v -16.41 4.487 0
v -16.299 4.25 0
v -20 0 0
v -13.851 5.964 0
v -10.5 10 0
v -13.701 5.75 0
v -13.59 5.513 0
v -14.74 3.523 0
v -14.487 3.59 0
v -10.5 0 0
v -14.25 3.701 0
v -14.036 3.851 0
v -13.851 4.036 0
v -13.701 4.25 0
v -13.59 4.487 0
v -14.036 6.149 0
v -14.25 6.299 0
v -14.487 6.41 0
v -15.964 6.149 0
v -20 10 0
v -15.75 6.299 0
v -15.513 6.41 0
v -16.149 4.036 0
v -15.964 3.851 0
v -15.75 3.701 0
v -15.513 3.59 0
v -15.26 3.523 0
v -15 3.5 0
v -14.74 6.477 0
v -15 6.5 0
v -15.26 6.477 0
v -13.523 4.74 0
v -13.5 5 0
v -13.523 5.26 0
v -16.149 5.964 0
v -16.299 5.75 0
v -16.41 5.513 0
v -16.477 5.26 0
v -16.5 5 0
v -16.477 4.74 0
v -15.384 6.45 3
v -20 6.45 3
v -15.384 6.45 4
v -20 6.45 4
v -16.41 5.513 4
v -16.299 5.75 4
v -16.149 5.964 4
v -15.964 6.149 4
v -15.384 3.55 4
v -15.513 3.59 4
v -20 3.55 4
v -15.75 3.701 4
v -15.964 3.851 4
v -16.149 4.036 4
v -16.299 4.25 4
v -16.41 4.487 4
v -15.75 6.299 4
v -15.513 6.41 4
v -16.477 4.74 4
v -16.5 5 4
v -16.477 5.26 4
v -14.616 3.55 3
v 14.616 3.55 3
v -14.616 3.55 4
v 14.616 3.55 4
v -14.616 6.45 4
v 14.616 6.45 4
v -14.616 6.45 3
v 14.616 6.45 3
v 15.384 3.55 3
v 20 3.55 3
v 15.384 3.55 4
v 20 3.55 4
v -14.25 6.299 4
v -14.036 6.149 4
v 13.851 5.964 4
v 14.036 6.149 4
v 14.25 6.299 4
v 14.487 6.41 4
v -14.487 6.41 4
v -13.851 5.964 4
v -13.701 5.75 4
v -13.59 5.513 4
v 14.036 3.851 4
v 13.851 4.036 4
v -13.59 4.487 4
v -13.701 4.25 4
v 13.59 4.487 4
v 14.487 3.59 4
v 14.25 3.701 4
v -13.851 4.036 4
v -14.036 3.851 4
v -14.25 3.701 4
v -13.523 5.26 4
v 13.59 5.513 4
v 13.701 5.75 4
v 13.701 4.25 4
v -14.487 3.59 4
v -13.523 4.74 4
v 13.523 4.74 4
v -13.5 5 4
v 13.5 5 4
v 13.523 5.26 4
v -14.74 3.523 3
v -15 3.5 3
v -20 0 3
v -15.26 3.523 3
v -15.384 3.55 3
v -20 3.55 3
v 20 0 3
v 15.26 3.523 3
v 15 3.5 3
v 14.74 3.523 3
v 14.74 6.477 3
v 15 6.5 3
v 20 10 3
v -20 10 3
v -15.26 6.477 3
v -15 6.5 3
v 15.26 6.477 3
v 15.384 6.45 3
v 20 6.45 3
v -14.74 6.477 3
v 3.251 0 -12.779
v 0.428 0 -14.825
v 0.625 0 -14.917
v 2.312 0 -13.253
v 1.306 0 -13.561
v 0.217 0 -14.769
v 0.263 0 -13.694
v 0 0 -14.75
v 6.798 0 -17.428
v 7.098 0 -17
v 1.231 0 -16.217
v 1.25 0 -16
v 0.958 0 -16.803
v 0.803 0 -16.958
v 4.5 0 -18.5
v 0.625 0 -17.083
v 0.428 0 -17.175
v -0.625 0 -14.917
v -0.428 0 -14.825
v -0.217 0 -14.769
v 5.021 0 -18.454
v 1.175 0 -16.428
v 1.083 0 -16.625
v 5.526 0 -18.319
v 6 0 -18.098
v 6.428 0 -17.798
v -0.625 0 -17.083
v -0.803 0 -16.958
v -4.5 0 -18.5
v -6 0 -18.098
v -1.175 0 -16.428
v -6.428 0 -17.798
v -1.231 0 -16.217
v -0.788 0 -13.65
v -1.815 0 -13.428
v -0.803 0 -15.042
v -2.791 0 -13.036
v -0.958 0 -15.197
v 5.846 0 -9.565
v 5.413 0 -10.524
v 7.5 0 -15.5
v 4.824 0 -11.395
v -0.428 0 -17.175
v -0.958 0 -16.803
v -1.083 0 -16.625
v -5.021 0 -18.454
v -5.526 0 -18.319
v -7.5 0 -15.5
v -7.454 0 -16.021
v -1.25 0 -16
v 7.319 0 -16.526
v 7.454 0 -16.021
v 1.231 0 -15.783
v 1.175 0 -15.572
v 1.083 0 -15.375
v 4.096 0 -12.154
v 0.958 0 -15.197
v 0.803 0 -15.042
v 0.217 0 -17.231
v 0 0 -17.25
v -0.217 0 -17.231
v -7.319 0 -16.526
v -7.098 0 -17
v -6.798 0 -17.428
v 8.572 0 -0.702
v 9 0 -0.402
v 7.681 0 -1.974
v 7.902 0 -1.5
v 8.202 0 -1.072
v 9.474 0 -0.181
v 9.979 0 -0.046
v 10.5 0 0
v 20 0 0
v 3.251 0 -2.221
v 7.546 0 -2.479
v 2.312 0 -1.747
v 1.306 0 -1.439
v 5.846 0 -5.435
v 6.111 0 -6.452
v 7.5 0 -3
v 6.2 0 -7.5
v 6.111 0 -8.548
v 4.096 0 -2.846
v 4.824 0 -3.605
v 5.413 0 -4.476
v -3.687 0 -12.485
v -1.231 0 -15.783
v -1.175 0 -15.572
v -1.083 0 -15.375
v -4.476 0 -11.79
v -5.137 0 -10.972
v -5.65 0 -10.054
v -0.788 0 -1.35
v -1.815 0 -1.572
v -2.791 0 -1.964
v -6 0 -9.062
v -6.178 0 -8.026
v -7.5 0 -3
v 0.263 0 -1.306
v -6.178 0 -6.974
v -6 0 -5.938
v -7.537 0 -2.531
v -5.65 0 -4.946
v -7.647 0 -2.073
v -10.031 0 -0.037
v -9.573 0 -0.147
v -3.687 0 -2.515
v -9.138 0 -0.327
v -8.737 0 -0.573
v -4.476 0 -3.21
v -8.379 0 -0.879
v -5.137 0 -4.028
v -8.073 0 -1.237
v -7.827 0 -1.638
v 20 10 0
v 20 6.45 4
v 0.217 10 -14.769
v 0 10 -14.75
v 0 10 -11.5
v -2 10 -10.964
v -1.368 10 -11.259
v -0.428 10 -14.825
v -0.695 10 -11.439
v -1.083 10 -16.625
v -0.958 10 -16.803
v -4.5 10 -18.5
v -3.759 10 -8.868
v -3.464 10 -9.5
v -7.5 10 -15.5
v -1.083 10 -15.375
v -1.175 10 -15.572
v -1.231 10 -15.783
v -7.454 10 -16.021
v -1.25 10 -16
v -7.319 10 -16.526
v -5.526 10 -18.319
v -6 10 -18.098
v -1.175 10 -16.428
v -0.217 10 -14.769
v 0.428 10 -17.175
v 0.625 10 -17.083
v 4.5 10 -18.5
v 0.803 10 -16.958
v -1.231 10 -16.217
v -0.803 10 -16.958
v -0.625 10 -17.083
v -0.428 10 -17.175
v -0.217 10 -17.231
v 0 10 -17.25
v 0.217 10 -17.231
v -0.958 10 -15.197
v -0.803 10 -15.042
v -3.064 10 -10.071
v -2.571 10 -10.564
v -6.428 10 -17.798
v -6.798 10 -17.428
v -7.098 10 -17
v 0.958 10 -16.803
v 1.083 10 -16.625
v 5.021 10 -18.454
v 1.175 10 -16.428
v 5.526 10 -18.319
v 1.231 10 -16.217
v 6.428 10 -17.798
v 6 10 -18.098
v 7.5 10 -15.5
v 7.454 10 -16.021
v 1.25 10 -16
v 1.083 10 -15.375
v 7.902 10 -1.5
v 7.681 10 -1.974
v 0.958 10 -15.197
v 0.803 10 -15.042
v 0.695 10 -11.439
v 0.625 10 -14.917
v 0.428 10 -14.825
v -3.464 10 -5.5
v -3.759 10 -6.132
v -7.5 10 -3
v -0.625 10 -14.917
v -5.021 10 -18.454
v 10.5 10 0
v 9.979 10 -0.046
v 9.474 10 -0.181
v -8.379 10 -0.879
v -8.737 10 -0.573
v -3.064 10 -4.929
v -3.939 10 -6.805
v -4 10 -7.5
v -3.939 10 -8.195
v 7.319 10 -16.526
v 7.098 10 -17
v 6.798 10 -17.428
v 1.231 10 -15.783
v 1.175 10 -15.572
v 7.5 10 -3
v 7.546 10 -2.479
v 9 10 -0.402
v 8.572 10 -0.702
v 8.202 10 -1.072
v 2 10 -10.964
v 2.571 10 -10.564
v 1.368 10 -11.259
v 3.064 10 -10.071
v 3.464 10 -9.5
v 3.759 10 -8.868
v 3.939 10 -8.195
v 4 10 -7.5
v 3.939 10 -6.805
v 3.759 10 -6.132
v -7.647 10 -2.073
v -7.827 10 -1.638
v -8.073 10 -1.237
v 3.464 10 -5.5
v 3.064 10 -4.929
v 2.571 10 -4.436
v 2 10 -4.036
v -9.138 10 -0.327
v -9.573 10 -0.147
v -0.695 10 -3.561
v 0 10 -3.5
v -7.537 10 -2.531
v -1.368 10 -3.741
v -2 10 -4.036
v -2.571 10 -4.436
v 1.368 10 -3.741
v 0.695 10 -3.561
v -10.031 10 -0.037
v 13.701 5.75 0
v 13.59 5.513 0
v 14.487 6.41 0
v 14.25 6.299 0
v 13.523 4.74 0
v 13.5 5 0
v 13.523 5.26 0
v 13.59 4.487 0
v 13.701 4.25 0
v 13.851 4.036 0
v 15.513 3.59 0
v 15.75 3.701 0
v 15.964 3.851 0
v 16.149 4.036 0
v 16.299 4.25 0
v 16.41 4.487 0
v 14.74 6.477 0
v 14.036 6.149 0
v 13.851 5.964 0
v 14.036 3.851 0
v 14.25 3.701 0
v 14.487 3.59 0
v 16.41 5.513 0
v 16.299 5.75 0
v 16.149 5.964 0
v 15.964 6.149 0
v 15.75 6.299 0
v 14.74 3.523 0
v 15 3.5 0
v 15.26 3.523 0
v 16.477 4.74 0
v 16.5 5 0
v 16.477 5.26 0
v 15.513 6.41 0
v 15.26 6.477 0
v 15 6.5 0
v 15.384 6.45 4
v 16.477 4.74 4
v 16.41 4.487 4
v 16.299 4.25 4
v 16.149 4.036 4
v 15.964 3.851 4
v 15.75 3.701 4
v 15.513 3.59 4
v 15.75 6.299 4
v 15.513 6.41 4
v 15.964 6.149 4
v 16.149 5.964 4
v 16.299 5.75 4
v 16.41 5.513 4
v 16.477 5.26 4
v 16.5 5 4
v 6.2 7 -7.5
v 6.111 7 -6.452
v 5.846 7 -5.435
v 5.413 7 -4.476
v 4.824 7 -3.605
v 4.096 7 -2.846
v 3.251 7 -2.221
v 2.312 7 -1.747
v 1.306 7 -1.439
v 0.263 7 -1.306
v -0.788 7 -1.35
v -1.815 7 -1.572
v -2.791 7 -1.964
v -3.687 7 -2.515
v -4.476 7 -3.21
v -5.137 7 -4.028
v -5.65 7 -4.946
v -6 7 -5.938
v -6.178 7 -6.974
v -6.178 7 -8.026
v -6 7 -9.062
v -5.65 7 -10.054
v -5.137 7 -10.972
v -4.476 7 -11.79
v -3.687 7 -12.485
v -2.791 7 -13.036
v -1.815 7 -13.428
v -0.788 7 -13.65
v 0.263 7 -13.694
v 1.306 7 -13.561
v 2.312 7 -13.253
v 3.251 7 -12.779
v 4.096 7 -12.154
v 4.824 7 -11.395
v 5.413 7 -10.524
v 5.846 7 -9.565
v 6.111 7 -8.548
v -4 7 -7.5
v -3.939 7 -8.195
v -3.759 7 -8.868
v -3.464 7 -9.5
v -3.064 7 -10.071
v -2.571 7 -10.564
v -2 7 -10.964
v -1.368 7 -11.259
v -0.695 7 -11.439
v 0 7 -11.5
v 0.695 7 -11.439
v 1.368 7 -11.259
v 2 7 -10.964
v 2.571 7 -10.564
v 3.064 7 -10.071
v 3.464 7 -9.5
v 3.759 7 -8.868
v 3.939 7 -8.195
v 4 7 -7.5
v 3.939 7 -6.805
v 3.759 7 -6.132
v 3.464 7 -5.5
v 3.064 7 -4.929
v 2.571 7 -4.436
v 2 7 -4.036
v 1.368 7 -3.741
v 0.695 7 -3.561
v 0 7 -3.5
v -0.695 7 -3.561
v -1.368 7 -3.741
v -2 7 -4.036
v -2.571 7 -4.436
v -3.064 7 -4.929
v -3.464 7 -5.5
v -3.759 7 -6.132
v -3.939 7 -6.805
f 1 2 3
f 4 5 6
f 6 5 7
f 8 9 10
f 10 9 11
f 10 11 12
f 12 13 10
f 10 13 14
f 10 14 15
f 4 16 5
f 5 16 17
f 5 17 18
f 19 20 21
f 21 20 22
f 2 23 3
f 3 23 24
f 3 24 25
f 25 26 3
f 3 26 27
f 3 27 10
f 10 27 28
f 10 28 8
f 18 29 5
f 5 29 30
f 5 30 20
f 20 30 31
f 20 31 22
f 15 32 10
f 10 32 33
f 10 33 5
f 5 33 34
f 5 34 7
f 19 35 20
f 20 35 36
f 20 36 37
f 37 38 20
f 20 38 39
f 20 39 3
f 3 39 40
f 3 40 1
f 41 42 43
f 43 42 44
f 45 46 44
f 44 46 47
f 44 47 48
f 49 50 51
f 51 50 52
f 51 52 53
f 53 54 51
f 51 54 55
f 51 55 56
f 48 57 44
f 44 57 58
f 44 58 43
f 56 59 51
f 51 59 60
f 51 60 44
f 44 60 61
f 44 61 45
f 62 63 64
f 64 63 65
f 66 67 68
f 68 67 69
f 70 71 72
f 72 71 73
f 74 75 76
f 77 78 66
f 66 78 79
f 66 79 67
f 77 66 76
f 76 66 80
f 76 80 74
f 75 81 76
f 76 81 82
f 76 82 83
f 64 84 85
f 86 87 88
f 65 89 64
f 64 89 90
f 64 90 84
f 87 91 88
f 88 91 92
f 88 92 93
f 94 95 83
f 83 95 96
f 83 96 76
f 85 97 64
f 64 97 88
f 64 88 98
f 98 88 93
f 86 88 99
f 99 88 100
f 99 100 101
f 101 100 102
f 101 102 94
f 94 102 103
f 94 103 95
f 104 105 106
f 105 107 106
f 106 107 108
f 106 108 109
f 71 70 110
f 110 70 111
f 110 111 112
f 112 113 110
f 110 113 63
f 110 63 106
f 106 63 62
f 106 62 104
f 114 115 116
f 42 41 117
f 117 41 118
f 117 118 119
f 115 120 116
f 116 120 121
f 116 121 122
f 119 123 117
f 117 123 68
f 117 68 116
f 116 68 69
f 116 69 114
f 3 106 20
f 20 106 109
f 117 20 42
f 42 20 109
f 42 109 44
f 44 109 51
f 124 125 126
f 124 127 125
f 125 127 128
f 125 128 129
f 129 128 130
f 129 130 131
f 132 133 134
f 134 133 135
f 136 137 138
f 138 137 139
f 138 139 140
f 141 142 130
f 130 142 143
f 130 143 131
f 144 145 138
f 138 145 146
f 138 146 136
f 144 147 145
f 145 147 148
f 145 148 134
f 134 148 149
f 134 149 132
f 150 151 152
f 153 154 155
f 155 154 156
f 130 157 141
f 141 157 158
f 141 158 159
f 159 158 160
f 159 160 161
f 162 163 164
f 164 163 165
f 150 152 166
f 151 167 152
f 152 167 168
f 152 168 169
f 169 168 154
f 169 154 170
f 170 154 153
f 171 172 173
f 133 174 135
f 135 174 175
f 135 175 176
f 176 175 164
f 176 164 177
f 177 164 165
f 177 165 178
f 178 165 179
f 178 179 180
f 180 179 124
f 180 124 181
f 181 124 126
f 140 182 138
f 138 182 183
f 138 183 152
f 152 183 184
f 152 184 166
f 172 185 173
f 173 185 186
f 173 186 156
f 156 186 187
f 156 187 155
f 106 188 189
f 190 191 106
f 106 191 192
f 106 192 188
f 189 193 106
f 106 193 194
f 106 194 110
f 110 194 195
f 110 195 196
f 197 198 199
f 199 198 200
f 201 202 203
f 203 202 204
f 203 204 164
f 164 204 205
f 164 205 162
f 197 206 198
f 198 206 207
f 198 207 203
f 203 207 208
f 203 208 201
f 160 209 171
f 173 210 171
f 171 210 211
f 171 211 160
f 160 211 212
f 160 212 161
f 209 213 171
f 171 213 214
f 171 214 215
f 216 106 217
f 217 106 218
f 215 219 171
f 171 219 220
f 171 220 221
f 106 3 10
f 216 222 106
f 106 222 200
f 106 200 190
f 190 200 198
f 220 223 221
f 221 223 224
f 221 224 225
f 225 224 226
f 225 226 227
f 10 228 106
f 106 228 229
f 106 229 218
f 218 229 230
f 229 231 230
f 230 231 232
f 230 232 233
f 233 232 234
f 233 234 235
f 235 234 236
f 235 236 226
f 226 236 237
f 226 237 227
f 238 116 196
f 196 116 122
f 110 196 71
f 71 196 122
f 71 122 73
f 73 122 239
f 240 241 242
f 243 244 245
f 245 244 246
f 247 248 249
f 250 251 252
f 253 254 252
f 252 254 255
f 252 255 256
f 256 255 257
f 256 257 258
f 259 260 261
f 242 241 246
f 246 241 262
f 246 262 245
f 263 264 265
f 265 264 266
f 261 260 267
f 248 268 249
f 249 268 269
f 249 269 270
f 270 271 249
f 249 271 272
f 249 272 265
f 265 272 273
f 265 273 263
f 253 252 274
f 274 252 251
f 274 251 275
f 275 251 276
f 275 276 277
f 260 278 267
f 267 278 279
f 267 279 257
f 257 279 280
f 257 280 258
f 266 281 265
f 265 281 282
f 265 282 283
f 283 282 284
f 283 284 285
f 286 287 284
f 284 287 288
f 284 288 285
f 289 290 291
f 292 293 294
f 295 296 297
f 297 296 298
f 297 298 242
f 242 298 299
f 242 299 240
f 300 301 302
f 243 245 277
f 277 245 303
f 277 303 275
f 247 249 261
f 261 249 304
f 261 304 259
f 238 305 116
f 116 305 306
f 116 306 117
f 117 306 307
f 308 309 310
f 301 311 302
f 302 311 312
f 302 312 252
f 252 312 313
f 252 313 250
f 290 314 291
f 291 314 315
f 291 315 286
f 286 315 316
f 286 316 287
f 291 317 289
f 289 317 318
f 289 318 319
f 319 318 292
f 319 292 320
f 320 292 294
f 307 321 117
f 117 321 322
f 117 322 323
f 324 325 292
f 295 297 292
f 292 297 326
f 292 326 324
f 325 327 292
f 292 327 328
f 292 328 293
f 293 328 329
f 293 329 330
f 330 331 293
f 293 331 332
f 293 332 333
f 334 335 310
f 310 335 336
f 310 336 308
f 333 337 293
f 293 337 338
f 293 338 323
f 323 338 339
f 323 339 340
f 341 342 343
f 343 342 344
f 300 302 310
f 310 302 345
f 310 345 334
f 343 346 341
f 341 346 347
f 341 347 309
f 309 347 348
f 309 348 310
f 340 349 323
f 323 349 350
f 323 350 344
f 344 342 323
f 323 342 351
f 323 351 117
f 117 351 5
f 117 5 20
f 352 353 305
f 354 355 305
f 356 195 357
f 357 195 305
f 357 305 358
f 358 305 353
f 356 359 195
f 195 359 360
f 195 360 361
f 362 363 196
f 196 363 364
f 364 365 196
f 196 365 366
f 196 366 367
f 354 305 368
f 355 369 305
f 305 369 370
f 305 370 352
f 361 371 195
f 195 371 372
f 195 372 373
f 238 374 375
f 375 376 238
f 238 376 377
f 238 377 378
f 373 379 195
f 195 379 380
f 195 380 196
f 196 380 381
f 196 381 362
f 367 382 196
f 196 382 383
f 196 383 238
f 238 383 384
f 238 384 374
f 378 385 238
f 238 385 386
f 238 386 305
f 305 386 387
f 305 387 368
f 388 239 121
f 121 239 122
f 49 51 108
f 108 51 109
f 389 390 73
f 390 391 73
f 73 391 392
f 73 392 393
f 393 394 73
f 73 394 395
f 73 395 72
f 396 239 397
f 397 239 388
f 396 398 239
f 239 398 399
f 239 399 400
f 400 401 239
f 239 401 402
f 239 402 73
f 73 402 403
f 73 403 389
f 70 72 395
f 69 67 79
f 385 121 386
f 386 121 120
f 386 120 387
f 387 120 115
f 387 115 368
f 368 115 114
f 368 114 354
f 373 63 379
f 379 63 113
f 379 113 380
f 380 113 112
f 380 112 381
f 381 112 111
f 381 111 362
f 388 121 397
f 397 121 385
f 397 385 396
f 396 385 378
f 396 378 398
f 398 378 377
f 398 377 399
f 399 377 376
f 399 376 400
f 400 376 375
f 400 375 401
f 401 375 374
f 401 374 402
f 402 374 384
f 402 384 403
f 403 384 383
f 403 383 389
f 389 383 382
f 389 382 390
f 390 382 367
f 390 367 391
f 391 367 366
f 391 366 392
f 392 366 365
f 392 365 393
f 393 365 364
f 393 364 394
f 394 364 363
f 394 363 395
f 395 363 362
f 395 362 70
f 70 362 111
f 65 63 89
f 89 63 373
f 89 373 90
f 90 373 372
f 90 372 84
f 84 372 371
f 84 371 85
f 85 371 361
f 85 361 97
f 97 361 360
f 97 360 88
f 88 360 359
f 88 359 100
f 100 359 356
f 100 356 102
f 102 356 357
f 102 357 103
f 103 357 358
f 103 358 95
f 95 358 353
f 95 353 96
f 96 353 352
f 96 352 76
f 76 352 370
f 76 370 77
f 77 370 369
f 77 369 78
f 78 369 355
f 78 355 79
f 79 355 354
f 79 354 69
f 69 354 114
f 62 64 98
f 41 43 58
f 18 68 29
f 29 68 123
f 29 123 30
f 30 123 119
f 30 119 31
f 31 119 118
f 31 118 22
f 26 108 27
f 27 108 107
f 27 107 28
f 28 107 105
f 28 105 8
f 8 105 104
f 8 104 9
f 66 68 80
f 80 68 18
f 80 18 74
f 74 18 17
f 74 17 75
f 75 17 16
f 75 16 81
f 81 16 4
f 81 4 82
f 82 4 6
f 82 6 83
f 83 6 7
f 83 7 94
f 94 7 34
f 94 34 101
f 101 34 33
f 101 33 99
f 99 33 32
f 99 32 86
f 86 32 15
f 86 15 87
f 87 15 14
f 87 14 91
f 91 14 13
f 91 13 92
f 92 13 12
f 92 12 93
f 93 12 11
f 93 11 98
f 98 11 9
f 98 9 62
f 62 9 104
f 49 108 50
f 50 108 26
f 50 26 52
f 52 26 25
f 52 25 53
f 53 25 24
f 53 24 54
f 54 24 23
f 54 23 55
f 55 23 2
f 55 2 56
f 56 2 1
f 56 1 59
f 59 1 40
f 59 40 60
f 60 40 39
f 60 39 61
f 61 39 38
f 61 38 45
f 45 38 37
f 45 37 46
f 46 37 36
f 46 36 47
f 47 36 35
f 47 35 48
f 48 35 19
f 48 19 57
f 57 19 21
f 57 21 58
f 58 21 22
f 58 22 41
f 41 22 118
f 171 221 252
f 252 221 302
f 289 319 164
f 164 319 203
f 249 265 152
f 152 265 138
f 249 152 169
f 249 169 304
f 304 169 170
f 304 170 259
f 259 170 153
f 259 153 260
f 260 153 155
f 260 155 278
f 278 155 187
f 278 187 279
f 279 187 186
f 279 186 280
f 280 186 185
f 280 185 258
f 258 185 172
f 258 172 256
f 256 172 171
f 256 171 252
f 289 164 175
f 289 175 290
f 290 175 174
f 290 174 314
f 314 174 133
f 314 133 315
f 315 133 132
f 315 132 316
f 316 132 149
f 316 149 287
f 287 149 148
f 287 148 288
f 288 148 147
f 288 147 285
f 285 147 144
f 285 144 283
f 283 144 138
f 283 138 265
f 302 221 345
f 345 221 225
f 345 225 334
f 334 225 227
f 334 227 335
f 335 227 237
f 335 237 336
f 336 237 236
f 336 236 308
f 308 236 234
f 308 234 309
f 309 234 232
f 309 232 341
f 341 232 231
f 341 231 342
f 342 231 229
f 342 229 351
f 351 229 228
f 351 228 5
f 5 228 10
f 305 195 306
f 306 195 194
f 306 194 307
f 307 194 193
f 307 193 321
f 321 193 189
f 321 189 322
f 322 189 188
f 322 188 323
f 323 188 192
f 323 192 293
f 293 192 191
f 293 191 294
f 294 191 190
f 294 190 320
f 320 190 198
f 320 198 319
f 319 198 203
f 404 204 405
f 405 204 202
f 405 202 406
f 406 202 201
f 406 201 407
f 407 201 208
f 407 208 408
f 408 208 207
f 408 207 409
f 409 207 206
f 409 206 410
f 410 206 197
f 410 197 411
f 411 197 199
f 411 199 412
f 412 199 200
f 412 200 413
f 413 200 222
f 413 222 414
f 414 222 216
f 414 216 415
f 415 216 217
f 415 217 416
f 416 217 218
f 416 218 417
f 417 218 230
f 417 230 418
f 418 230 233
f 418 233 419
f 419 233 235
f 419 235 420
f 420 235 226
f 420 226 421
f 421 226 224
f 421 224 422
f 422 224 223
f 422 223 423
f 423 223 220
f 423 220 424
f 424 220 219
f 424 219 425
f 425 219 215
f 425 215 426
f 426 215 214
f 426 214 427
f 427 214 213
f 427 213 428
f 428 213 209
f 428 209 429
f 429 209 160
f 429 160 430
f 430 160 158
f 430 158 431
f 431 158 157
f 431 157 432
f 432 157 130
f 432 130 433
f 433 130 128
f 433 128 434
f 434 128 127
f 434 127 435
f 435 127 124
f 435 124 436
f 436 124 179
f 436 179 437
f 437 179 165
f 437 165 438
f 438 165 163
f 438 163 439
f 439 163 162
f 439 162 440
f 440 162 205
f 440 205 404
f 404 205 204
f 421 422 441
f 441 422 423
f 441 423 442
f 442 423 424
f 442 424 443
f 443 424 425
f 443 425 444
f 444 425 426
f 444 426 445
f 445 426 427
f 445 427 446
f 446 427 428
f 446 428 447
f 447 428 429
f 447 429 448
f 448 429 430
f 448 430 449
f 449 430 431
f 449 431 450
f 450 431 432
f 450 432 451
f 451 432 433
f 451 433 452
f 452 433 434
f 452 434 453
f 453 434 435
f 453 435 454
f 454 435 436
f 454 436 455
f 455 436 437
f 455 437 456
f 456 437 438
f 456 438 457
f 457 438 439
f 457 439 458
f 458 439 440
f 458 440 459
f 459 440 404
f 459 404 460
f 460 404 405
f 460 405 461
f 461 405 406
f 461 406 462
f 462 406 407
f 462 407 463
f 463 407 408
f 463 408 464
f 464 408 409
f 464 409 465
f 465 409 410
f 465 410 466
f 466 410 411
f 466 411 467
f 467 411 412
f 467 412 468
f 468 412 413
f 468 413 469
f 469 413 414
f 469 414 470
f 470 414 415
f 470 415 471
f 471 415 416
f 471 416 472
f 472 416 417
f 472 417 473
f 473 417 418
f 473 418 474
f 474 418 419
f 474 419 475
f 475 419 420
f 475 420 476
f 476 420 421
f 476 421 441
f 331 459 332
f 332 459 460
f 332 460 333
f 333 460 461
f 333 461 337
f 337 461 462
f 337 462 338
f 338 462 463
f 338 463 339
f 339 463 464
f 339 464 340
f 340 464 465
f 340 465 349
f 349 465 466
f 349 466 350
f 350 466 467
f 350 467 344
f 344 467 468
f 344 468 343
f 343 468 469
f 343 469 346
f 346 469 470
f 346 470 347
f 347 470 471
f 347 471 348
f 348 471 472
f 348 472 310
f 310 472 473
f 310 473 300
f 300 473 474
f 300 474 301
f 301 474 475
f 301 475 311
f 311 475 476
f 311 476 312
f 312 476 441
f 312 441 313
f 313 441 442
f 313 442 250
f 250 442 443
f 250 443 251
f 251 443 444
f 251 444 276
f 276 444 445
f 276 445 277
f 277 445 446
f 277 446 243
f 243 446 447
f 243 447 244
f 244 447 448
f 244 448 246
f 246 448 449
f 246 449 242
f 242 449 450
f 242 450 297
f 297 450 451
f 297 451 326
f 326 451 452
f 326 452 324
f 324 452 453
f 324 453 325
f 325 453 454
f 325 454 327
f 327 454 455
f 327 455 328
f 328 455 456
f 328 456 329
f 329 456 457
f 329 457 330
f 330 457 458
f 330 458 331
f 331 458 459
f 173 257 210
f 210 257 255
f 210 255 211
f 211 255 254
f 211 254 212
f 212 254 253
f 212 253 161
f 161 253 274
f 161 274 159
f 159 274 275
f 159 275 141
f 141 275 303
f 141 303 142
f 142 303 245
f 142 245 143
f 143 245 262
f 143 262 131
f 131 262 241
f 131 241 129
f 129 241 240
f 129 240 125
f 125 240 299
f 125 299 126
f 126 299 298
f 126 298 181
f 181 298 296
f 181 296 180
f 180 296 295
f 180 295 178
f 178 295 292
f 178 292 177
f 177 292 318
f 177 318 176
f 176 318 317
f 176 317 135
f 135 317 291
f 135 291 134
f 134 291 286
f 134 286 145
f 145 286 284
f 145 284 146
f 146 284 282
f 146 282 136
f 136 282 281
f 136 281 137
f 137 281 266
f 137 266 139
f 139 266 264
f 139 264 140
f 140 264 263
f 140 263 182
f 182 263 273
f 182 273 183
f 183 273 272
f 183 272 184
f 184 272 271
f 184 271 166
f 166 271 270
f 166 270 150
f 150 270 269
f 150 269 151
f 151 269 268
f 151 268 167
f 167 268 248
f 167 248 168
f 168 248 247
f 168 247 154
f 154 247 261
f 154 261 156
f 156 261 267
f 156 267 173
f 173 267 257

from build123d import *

# Parameters (mm, degrees)
ESQUISSE1_W               = 40
ESQUISSE1_H               = 10
MAIN_DEPTH                = 3
ESQUISSE2_W               = 40
ESQUISSE2_H               = 2.9
MAKERBEAMRAIL_DEPTH       = 1
ESQUISSE3_R               = 1.5
MAKERBEAMHOLE_DEPTH       = 5
MAKERBEAMHOLEREPEAT_COUNT = 2
MAKERBEAMHOLEREPEAT_PITCH = 30
SKETCH3_W                 = 15
SKETCH3_H                 = 18.5
MAGNETSUPPORT_DEPTH       = 10
FILLET5_R                 = 3
SKETCH4_R                 = 6.2
MAGNETBIGHOLE_DEPTH       = 7
SKETCH5_R                 = 4
MAGNETSMALLHOLE_DEPTH     = 4
SKETCH6_R                 = 1.25
SUBMAGNETFIXHOLE_DEPTH    = 11


with BuildPart() as part:
    # Esquisse1 → Main (new body)
    with BuildSketch(Plane.XY):
        with Locations((0, 5)):
            Rectangle(ESQUISSE1_W, ESQUISSE1_H)
    extrude(amount=MAIN_DEPTH)

    # Esquisse2 → MakerBeamRail (add)
    with BuildSketch(Plane.XY.offset(3)):
        with Locations((0, 5)):
            Rectangle(ESQUISSE2_W, ESQUISSE2_H)
    extrude(amount=MAKERBEAMRAIL_DEPTH)

    # Esquisse3 → MakerBeamHole (cut, through all)
    with BuildSketch(Plane(origin=(0, 0, 0), x_dir=(-1, 0, 0), z_dir=(0, 0, -1))):
        with Locations((-15, 5)):
            Circle(ESQUISSE3_R)
    makerbeamhole = extrude(amount=-MAKERBEAMHOLE_DEPTH, mode=Mode.SUBTRACT)

    # MakerBeamHoleRepeat: MakerBeamHole ×2
    with Locations(*[(-i * MAKERBEAMHOLEREPEAT_PITCH, 0, 0) for i in range(1, MAKERBEAMHOLEREPEAT_COUNT)]):
        add(makerbeamhole, mode=Mode.SUBTRACT)

    # Sketch3 → MagnetSupport (add)
    with BuildSketch(Plane(origin=(0, 0, 0), x_dir=(1, 0, 0), z_dir=(0, 1, 0))):
        with Locations((0, 9.25)):
            Rectangle(SKETCH3_W, SKETCH3_H)
    extrude(amount=MAGNETSUPPORT_DEPTH)

    # Fillet5
    fillet5_edges = [part.edges().sort_by_distance(p)[0] for p in [
        (-7.5, 5, -18.5),
        (-7.5, 5, 0),
        (7.5, 5, 0),
        (7.5, 5, -18.5),
    ]]
    fillet(fillet5_edges, radius=FILLET5_R)

    # Sketch4 → MagnetBigHole (cut)
    with BuildSketch(Plane.XZ):
        with Locations((0, -7.5)):
            Circle(SKETCH4_R)
    extrude(amount=-MAGNETBIGHOLE_DEPTH, mode=Mode.SUBTRACT)

    # Sketch5 → MagnetSmallHole (cut, through all)
    with BuildSketch(Plane.XZ.offset(-7)):
        with Locations((0, -7.5)):
            Circle(SKETCH5_R)
    extrude(amount=-MAGNETSMALLHOLE_DEPTH, mode=Mode.SUBTRACT)

    # Sketch6 → SubMagnetFixHole (cut, through all)
    with BuildSketch(Plane(origin=(0, 10, 0), x_dir=(1, 0, 0), z_dir=(0, 1, 0))):
        with Locations((0, 16)):
            Circle(SKETCH6_R)
    extrude(amount=-SUBMAGNETFIXHOLE_DEPTH, mode=Mode.SUBTRACT)


solid = part.part
